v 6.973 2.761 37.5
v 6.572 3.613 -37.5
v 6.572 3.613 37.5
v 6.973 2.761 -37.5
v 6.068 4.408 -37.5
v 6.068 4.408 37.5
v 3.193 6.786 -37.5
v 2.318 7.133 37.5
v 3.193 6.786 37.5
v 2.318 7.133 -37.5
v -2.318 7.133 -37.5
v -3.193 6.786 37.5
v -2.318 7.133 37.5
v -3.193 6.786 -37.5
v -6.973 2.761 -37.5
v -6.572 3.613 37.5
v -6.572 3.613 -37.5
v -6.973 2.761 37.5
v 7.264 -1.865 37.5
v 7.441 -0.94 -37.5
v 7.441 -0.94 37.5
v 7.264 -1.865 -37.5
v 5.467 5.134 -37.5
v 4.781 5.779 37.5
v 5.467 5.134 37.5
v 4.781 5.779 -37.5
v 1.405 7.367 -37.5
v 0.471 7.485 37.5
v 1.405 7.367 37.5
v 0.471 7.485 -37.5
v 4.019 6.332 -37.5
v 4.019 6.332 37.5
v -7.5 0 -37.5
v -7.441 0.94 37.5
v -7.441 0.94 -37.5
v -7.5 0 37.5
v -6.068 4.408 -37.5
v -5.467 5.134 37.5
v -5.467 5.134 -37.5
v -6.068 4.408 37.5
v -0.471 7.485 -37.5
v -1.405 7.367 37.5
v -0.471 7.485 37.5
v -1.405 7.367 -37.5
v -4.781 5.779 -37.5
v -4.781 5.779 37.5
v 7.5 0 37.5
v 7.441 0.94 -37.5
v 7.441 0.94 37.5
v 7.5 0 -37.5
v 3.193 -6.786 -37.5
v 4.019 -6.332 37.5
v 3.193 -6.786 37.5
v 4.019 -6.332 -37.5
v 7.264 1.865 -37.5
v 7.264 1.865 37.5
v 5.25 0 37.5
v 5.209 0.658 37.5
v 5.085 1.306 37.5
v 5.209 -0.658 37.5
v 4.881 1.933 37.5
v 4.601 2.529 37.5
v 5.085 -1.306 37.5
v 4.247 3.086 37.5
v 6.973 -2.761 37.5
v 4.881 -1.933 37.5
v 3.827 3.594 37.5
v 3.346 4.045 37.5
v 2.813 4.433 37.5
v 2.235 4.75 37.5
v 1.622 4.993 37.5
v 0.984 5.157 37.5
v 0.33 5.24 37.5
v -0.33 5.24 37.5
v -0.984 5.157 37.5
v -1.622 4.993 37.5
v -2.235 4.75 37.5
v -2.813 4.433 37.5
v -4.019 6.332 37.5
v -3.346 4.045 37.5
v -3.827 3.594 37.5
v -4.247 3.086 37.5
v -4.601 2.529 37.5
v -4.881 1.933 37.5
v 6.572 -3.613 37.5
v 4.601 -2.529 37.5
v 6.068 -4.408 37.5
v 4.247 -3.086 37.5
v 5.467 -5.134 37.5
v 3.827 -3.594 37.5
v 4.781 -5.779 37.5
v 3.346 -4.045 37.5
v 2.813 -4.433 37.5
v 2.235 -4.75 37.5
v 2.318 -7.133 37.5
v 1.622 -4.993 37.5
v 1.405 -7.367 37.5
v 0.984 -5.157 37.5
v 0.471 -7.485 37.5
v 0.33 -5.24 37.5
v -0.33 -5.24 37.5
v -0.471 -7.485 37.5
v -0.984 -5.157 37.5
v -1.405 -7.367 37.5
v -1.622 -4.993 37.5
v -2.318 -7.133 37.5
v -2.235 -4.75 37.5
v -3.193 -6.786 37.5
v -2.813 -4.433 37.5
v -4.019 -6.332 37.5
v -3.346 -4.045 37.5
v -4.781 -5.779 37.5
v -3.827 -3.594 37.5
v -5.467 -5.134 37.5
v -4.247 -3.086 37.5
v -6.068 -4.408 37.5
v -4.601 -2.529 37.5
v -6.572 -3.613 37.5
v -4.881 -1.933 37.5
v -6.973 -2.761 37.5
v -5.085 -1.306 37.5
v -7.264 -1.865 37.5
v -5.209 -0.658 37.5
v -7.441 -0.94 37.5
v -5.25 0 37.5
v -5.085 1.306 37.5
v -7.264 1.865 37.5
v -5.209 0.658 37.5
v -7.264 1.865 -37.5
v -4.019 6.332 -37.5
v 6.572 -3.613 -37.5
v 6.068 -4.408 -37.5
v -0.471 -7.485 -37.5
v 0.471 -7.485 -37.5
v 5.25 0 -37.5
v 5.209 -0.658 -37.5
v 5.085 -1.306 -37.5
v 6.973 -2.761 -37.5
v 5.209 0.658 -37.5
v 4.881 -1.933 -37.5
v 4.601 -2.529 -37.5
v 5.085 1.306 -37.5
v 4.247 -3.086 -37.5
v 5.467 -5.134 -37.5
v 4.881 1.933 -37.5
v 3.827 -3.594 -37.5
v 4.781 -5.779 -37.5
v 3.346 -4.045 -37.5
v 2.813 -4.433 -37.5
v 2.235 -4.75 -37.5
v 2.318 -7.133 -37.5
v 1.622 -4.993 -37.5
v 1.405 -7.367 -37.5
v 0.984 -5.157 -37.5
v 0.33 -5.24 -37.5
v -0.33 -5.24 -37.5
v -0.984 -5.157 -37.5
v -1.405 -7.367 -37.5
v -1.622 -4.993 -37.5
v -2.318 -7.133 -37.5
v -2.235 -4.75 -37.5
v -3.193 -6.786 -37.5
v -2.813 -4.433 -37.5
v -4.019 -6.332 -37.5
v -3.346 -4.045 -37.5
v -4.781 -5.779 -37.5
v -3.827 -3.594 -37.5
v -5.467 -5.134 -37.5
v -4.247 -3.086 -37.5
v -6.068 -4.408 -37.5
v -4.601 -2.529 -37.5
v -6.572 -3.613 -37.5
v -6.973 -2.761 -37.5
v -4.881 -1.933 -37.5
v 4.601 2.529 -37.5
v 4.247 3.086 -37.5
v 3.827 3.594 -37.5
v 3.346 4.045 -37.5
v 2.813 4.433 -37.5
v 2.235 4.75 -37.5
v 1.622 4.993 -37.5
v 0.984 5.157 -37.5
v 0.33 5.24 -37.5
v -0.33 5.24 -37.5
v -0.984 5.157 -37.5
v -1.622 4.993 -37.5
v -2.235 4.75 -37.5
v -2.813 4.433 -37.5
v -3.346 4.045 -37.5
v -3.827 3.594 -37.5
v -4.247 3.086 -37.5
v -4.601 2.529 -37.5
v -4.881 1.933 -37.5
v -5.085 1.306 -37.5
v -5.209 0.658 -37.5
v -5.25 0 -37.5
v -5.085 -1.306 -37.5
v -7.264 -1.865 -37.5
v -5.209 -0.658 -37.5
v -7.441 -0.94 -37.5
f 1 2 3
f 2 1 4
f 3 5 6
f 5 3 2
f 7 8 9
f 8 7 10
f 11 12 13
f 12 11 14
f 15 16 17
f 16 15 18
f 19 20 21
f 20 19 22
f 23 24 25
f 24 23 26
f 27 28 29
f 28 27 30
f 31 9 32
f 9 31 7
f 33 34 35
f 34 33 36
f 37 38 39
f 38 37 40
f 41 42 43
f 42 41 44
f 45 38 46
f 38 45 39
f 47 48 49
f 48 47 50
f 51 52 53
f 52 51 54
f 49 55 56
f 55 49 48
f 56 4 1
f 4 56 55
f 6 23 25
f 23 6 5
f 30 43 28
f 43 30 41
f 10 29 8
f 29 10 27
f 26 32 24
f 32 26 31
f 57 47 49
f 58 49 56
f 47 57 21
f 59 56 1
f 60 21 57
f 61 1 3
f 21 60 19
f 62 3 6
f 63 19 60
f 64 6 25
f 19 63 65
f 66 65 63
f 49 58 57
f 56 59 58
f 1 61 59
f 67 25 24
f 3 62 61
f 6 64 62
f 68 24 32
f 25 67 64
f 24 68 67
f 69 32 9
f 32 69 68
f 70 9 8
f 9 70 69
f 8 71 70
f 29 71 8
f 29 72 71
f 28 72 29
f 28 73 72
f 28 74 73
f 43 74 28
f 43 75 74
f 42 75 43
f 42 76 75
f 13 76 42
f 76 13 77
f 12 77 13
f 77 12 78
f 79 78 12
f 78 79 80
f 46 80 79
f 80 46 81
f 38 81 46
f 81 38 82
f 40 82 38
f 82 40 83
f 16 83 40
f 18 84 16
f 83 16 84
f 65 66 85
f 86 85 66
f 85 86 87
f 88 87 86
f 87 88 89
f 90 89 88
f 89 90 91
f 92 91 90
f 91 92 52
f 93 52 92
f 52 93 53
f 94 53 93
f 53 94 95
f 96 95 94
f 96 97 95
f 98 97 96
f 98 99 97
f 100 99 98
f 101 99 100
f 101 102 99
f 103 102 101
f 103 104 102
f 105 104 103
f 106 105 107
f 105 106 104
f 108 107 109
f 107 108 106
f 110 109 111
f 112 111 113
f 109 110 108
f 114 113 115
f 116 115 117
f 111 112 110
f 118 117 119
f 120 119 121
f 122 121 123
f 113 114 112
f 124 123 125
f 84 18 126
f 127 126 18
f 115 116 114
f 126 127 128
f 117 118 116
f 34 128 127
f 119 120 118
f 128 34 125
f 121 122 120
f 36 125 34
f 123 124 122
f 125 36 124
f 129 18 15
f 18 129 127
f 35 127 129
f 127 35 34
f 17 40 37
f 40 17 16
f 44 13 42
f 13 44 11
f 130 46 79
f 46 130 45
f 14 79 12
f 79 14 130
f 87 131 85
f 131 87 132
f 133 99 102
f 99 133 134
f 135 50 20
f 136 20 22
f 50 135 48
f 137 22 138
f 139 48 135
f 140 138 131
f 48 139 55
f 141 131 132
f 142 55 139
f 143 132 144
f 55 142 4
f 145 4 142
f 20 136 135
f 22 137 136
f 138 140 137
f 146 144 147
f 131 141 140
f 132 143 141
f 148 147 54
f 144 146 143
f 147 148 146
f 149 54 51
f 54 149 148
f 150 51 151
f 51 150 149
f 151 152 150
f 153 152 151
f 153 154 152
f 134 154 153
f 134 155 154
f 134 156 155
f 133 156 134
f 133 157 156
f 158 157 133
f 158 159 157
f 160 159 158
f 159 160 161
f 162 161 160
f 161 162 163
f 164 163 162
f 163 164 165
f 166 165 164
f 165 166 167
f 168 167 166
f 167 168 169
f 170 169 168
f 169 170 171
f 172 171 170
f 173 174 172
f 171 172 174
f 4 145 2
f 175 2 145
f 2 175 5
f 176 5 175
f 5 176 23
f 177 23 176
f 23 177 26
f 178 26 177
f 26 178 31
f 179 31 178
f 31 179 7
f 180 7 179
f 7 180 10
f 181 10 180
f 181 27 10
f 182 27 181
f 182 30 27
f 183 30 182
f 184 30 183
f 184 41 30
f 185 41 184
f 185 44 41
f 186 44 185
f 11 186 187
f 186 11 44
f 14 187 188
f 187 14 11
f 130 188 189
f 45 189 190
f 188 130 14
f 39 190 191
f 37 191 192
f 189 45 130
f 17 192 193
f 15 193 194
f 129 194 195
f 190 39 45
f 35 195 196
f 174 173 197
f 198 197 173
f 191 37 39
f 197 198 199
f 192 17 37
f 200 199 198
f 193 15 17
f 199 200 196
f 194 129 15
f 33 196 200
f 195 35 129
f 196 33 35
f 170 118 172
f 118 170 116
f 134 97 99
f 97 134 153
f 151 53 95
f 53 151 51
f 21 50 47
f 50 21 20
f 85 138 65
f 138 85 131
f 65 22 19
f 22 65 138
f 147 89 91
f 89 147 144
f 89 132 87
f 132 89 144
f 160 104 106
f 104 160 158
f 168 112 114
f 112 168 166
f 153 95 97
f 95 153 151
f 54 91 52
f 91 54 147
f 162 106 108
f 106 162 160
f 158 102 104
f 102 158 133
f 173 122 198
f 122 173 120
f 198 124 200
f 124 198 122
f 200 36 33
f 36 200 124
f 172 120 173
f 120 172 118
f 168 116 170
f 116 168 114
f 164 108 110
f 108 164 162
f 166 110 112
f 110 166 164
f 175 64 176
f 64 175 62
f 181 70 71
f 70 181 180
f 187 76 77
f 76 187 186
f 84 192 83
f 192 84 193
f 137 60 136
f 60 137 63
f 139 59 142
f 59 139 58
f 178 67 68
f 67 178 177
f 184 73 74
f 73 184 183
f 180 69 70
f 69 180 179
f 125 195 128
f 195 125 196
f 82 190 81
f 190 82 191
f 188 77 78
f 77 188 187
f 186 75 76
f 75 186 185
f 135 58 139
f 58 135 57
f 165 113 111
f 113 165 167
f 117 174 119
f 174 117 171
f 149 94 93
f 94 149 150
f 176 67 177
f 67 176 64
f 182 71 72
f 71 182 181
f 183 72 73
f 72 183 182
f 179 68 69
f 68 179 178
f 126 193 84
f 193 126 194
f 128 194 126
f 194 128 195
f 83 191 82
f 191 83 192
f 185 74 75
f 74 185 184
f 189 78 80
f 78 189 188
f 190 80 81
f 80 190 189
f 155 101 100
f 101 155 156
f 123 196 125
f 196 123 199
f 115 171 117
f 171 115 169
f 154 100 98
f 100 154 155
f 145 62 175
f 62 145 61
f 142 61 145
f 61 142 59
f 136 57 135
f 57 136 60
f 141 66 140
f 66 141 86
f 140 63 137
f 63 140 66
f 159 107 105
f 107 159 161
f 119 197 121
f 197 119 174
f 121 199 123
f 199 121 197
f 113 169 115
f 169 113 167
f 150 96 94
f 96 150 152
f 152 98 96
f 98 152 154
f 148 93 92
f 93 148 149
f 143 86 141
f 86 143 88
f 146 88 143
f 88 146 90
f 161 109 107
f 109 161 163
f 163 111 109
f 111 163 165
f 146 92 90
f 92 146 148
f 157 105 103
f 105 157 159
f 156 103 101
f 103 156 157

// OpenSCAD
$fn = 50;


difference() {
	union() {
		translate(v = [0, 0, -37.5000000000]) {
			cylinder(h = 75, r = 7.5000000000);
		}
	}
	union() {
		translate(v = [0, 0, -100.0000000000]) {
			cylinder(h = 200, r = 5.2500000000);
		}
	}
}
